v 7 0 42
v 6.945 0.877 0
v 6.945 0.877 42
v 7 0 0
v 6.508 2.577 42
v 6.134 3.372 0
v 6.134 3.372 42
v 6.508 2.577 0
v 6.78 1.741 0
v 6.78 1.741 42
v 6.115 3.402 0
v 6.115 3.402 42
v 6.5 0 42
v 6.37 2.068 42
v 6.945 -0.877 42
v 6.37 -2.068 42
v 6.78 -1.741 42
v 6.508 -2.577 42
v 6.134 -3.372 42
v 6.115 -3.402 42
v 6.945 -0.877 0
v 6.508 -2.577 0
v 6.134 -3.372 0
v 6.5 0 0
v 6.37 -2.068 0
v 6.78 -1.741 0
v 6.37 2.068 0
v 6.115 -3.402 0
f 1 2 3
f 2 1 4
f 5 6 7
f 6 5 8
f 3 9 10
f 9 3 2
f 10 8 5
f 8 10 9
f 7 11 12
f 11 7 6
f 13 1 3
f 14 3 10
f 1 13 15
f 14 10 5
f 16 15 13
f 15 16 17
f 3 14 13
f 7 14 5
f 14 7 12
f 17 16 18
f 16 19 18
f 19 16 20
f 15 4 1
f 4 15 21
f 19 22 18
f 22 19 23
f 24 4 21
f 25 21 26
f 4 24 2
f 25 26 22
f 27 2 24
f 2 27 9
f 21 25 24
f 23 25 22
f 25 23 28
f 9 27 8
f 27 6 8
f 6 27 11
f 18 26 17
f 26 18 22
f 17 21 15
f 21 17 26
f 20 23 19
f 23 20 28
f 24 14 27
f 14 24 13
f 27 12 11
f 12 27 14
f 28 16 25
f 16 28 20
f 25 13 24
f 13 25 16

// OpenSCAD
$fn = 50;


difference() {
	union() {
		cylinder(h = 42, r = 7.0000000000);
		translate(v = [-13.0000000000, 0, 0]) {
			cylinder(h = 42, r = 7.0000000000);
		}
	}
	union() {
		cylinder(h = 42, r = 3.2500000000);
		cylinder(h = 42, r = 1.8000000000);
		cylinder(h = 42, r = 1.8000000000);
		cylinder(h = 42, r = 1.8000000000);
		translate(v = [-17.5000000000, 0, 0]) {
			hull() {
				translate(v = [-3.7500000000, 0.0000000000, 0]) {
					cylinder(h = 42, r = 7.5000000000);
				}
				translate(v = [3.7500000000, 0.0000000000, 0]) {
					cylinder(h = 42, r = 7.5000000000);
				}
				translate(v = [-3.7500000000, -0.0000000000, 0]) {
					cylinder(h = 42, r = 7.5000000000);
				}
				translate(v = [3.7500000000, -0.0000000000, 0]) {
					cylinder(h = 42, r = 7.5000000000);
				}
			}
		}
		translate(v = [-10.0000000000, 0, 0.0000000000]) {
			cylinder(h = 42, r = 16.5000000000);
		}
	}
}
